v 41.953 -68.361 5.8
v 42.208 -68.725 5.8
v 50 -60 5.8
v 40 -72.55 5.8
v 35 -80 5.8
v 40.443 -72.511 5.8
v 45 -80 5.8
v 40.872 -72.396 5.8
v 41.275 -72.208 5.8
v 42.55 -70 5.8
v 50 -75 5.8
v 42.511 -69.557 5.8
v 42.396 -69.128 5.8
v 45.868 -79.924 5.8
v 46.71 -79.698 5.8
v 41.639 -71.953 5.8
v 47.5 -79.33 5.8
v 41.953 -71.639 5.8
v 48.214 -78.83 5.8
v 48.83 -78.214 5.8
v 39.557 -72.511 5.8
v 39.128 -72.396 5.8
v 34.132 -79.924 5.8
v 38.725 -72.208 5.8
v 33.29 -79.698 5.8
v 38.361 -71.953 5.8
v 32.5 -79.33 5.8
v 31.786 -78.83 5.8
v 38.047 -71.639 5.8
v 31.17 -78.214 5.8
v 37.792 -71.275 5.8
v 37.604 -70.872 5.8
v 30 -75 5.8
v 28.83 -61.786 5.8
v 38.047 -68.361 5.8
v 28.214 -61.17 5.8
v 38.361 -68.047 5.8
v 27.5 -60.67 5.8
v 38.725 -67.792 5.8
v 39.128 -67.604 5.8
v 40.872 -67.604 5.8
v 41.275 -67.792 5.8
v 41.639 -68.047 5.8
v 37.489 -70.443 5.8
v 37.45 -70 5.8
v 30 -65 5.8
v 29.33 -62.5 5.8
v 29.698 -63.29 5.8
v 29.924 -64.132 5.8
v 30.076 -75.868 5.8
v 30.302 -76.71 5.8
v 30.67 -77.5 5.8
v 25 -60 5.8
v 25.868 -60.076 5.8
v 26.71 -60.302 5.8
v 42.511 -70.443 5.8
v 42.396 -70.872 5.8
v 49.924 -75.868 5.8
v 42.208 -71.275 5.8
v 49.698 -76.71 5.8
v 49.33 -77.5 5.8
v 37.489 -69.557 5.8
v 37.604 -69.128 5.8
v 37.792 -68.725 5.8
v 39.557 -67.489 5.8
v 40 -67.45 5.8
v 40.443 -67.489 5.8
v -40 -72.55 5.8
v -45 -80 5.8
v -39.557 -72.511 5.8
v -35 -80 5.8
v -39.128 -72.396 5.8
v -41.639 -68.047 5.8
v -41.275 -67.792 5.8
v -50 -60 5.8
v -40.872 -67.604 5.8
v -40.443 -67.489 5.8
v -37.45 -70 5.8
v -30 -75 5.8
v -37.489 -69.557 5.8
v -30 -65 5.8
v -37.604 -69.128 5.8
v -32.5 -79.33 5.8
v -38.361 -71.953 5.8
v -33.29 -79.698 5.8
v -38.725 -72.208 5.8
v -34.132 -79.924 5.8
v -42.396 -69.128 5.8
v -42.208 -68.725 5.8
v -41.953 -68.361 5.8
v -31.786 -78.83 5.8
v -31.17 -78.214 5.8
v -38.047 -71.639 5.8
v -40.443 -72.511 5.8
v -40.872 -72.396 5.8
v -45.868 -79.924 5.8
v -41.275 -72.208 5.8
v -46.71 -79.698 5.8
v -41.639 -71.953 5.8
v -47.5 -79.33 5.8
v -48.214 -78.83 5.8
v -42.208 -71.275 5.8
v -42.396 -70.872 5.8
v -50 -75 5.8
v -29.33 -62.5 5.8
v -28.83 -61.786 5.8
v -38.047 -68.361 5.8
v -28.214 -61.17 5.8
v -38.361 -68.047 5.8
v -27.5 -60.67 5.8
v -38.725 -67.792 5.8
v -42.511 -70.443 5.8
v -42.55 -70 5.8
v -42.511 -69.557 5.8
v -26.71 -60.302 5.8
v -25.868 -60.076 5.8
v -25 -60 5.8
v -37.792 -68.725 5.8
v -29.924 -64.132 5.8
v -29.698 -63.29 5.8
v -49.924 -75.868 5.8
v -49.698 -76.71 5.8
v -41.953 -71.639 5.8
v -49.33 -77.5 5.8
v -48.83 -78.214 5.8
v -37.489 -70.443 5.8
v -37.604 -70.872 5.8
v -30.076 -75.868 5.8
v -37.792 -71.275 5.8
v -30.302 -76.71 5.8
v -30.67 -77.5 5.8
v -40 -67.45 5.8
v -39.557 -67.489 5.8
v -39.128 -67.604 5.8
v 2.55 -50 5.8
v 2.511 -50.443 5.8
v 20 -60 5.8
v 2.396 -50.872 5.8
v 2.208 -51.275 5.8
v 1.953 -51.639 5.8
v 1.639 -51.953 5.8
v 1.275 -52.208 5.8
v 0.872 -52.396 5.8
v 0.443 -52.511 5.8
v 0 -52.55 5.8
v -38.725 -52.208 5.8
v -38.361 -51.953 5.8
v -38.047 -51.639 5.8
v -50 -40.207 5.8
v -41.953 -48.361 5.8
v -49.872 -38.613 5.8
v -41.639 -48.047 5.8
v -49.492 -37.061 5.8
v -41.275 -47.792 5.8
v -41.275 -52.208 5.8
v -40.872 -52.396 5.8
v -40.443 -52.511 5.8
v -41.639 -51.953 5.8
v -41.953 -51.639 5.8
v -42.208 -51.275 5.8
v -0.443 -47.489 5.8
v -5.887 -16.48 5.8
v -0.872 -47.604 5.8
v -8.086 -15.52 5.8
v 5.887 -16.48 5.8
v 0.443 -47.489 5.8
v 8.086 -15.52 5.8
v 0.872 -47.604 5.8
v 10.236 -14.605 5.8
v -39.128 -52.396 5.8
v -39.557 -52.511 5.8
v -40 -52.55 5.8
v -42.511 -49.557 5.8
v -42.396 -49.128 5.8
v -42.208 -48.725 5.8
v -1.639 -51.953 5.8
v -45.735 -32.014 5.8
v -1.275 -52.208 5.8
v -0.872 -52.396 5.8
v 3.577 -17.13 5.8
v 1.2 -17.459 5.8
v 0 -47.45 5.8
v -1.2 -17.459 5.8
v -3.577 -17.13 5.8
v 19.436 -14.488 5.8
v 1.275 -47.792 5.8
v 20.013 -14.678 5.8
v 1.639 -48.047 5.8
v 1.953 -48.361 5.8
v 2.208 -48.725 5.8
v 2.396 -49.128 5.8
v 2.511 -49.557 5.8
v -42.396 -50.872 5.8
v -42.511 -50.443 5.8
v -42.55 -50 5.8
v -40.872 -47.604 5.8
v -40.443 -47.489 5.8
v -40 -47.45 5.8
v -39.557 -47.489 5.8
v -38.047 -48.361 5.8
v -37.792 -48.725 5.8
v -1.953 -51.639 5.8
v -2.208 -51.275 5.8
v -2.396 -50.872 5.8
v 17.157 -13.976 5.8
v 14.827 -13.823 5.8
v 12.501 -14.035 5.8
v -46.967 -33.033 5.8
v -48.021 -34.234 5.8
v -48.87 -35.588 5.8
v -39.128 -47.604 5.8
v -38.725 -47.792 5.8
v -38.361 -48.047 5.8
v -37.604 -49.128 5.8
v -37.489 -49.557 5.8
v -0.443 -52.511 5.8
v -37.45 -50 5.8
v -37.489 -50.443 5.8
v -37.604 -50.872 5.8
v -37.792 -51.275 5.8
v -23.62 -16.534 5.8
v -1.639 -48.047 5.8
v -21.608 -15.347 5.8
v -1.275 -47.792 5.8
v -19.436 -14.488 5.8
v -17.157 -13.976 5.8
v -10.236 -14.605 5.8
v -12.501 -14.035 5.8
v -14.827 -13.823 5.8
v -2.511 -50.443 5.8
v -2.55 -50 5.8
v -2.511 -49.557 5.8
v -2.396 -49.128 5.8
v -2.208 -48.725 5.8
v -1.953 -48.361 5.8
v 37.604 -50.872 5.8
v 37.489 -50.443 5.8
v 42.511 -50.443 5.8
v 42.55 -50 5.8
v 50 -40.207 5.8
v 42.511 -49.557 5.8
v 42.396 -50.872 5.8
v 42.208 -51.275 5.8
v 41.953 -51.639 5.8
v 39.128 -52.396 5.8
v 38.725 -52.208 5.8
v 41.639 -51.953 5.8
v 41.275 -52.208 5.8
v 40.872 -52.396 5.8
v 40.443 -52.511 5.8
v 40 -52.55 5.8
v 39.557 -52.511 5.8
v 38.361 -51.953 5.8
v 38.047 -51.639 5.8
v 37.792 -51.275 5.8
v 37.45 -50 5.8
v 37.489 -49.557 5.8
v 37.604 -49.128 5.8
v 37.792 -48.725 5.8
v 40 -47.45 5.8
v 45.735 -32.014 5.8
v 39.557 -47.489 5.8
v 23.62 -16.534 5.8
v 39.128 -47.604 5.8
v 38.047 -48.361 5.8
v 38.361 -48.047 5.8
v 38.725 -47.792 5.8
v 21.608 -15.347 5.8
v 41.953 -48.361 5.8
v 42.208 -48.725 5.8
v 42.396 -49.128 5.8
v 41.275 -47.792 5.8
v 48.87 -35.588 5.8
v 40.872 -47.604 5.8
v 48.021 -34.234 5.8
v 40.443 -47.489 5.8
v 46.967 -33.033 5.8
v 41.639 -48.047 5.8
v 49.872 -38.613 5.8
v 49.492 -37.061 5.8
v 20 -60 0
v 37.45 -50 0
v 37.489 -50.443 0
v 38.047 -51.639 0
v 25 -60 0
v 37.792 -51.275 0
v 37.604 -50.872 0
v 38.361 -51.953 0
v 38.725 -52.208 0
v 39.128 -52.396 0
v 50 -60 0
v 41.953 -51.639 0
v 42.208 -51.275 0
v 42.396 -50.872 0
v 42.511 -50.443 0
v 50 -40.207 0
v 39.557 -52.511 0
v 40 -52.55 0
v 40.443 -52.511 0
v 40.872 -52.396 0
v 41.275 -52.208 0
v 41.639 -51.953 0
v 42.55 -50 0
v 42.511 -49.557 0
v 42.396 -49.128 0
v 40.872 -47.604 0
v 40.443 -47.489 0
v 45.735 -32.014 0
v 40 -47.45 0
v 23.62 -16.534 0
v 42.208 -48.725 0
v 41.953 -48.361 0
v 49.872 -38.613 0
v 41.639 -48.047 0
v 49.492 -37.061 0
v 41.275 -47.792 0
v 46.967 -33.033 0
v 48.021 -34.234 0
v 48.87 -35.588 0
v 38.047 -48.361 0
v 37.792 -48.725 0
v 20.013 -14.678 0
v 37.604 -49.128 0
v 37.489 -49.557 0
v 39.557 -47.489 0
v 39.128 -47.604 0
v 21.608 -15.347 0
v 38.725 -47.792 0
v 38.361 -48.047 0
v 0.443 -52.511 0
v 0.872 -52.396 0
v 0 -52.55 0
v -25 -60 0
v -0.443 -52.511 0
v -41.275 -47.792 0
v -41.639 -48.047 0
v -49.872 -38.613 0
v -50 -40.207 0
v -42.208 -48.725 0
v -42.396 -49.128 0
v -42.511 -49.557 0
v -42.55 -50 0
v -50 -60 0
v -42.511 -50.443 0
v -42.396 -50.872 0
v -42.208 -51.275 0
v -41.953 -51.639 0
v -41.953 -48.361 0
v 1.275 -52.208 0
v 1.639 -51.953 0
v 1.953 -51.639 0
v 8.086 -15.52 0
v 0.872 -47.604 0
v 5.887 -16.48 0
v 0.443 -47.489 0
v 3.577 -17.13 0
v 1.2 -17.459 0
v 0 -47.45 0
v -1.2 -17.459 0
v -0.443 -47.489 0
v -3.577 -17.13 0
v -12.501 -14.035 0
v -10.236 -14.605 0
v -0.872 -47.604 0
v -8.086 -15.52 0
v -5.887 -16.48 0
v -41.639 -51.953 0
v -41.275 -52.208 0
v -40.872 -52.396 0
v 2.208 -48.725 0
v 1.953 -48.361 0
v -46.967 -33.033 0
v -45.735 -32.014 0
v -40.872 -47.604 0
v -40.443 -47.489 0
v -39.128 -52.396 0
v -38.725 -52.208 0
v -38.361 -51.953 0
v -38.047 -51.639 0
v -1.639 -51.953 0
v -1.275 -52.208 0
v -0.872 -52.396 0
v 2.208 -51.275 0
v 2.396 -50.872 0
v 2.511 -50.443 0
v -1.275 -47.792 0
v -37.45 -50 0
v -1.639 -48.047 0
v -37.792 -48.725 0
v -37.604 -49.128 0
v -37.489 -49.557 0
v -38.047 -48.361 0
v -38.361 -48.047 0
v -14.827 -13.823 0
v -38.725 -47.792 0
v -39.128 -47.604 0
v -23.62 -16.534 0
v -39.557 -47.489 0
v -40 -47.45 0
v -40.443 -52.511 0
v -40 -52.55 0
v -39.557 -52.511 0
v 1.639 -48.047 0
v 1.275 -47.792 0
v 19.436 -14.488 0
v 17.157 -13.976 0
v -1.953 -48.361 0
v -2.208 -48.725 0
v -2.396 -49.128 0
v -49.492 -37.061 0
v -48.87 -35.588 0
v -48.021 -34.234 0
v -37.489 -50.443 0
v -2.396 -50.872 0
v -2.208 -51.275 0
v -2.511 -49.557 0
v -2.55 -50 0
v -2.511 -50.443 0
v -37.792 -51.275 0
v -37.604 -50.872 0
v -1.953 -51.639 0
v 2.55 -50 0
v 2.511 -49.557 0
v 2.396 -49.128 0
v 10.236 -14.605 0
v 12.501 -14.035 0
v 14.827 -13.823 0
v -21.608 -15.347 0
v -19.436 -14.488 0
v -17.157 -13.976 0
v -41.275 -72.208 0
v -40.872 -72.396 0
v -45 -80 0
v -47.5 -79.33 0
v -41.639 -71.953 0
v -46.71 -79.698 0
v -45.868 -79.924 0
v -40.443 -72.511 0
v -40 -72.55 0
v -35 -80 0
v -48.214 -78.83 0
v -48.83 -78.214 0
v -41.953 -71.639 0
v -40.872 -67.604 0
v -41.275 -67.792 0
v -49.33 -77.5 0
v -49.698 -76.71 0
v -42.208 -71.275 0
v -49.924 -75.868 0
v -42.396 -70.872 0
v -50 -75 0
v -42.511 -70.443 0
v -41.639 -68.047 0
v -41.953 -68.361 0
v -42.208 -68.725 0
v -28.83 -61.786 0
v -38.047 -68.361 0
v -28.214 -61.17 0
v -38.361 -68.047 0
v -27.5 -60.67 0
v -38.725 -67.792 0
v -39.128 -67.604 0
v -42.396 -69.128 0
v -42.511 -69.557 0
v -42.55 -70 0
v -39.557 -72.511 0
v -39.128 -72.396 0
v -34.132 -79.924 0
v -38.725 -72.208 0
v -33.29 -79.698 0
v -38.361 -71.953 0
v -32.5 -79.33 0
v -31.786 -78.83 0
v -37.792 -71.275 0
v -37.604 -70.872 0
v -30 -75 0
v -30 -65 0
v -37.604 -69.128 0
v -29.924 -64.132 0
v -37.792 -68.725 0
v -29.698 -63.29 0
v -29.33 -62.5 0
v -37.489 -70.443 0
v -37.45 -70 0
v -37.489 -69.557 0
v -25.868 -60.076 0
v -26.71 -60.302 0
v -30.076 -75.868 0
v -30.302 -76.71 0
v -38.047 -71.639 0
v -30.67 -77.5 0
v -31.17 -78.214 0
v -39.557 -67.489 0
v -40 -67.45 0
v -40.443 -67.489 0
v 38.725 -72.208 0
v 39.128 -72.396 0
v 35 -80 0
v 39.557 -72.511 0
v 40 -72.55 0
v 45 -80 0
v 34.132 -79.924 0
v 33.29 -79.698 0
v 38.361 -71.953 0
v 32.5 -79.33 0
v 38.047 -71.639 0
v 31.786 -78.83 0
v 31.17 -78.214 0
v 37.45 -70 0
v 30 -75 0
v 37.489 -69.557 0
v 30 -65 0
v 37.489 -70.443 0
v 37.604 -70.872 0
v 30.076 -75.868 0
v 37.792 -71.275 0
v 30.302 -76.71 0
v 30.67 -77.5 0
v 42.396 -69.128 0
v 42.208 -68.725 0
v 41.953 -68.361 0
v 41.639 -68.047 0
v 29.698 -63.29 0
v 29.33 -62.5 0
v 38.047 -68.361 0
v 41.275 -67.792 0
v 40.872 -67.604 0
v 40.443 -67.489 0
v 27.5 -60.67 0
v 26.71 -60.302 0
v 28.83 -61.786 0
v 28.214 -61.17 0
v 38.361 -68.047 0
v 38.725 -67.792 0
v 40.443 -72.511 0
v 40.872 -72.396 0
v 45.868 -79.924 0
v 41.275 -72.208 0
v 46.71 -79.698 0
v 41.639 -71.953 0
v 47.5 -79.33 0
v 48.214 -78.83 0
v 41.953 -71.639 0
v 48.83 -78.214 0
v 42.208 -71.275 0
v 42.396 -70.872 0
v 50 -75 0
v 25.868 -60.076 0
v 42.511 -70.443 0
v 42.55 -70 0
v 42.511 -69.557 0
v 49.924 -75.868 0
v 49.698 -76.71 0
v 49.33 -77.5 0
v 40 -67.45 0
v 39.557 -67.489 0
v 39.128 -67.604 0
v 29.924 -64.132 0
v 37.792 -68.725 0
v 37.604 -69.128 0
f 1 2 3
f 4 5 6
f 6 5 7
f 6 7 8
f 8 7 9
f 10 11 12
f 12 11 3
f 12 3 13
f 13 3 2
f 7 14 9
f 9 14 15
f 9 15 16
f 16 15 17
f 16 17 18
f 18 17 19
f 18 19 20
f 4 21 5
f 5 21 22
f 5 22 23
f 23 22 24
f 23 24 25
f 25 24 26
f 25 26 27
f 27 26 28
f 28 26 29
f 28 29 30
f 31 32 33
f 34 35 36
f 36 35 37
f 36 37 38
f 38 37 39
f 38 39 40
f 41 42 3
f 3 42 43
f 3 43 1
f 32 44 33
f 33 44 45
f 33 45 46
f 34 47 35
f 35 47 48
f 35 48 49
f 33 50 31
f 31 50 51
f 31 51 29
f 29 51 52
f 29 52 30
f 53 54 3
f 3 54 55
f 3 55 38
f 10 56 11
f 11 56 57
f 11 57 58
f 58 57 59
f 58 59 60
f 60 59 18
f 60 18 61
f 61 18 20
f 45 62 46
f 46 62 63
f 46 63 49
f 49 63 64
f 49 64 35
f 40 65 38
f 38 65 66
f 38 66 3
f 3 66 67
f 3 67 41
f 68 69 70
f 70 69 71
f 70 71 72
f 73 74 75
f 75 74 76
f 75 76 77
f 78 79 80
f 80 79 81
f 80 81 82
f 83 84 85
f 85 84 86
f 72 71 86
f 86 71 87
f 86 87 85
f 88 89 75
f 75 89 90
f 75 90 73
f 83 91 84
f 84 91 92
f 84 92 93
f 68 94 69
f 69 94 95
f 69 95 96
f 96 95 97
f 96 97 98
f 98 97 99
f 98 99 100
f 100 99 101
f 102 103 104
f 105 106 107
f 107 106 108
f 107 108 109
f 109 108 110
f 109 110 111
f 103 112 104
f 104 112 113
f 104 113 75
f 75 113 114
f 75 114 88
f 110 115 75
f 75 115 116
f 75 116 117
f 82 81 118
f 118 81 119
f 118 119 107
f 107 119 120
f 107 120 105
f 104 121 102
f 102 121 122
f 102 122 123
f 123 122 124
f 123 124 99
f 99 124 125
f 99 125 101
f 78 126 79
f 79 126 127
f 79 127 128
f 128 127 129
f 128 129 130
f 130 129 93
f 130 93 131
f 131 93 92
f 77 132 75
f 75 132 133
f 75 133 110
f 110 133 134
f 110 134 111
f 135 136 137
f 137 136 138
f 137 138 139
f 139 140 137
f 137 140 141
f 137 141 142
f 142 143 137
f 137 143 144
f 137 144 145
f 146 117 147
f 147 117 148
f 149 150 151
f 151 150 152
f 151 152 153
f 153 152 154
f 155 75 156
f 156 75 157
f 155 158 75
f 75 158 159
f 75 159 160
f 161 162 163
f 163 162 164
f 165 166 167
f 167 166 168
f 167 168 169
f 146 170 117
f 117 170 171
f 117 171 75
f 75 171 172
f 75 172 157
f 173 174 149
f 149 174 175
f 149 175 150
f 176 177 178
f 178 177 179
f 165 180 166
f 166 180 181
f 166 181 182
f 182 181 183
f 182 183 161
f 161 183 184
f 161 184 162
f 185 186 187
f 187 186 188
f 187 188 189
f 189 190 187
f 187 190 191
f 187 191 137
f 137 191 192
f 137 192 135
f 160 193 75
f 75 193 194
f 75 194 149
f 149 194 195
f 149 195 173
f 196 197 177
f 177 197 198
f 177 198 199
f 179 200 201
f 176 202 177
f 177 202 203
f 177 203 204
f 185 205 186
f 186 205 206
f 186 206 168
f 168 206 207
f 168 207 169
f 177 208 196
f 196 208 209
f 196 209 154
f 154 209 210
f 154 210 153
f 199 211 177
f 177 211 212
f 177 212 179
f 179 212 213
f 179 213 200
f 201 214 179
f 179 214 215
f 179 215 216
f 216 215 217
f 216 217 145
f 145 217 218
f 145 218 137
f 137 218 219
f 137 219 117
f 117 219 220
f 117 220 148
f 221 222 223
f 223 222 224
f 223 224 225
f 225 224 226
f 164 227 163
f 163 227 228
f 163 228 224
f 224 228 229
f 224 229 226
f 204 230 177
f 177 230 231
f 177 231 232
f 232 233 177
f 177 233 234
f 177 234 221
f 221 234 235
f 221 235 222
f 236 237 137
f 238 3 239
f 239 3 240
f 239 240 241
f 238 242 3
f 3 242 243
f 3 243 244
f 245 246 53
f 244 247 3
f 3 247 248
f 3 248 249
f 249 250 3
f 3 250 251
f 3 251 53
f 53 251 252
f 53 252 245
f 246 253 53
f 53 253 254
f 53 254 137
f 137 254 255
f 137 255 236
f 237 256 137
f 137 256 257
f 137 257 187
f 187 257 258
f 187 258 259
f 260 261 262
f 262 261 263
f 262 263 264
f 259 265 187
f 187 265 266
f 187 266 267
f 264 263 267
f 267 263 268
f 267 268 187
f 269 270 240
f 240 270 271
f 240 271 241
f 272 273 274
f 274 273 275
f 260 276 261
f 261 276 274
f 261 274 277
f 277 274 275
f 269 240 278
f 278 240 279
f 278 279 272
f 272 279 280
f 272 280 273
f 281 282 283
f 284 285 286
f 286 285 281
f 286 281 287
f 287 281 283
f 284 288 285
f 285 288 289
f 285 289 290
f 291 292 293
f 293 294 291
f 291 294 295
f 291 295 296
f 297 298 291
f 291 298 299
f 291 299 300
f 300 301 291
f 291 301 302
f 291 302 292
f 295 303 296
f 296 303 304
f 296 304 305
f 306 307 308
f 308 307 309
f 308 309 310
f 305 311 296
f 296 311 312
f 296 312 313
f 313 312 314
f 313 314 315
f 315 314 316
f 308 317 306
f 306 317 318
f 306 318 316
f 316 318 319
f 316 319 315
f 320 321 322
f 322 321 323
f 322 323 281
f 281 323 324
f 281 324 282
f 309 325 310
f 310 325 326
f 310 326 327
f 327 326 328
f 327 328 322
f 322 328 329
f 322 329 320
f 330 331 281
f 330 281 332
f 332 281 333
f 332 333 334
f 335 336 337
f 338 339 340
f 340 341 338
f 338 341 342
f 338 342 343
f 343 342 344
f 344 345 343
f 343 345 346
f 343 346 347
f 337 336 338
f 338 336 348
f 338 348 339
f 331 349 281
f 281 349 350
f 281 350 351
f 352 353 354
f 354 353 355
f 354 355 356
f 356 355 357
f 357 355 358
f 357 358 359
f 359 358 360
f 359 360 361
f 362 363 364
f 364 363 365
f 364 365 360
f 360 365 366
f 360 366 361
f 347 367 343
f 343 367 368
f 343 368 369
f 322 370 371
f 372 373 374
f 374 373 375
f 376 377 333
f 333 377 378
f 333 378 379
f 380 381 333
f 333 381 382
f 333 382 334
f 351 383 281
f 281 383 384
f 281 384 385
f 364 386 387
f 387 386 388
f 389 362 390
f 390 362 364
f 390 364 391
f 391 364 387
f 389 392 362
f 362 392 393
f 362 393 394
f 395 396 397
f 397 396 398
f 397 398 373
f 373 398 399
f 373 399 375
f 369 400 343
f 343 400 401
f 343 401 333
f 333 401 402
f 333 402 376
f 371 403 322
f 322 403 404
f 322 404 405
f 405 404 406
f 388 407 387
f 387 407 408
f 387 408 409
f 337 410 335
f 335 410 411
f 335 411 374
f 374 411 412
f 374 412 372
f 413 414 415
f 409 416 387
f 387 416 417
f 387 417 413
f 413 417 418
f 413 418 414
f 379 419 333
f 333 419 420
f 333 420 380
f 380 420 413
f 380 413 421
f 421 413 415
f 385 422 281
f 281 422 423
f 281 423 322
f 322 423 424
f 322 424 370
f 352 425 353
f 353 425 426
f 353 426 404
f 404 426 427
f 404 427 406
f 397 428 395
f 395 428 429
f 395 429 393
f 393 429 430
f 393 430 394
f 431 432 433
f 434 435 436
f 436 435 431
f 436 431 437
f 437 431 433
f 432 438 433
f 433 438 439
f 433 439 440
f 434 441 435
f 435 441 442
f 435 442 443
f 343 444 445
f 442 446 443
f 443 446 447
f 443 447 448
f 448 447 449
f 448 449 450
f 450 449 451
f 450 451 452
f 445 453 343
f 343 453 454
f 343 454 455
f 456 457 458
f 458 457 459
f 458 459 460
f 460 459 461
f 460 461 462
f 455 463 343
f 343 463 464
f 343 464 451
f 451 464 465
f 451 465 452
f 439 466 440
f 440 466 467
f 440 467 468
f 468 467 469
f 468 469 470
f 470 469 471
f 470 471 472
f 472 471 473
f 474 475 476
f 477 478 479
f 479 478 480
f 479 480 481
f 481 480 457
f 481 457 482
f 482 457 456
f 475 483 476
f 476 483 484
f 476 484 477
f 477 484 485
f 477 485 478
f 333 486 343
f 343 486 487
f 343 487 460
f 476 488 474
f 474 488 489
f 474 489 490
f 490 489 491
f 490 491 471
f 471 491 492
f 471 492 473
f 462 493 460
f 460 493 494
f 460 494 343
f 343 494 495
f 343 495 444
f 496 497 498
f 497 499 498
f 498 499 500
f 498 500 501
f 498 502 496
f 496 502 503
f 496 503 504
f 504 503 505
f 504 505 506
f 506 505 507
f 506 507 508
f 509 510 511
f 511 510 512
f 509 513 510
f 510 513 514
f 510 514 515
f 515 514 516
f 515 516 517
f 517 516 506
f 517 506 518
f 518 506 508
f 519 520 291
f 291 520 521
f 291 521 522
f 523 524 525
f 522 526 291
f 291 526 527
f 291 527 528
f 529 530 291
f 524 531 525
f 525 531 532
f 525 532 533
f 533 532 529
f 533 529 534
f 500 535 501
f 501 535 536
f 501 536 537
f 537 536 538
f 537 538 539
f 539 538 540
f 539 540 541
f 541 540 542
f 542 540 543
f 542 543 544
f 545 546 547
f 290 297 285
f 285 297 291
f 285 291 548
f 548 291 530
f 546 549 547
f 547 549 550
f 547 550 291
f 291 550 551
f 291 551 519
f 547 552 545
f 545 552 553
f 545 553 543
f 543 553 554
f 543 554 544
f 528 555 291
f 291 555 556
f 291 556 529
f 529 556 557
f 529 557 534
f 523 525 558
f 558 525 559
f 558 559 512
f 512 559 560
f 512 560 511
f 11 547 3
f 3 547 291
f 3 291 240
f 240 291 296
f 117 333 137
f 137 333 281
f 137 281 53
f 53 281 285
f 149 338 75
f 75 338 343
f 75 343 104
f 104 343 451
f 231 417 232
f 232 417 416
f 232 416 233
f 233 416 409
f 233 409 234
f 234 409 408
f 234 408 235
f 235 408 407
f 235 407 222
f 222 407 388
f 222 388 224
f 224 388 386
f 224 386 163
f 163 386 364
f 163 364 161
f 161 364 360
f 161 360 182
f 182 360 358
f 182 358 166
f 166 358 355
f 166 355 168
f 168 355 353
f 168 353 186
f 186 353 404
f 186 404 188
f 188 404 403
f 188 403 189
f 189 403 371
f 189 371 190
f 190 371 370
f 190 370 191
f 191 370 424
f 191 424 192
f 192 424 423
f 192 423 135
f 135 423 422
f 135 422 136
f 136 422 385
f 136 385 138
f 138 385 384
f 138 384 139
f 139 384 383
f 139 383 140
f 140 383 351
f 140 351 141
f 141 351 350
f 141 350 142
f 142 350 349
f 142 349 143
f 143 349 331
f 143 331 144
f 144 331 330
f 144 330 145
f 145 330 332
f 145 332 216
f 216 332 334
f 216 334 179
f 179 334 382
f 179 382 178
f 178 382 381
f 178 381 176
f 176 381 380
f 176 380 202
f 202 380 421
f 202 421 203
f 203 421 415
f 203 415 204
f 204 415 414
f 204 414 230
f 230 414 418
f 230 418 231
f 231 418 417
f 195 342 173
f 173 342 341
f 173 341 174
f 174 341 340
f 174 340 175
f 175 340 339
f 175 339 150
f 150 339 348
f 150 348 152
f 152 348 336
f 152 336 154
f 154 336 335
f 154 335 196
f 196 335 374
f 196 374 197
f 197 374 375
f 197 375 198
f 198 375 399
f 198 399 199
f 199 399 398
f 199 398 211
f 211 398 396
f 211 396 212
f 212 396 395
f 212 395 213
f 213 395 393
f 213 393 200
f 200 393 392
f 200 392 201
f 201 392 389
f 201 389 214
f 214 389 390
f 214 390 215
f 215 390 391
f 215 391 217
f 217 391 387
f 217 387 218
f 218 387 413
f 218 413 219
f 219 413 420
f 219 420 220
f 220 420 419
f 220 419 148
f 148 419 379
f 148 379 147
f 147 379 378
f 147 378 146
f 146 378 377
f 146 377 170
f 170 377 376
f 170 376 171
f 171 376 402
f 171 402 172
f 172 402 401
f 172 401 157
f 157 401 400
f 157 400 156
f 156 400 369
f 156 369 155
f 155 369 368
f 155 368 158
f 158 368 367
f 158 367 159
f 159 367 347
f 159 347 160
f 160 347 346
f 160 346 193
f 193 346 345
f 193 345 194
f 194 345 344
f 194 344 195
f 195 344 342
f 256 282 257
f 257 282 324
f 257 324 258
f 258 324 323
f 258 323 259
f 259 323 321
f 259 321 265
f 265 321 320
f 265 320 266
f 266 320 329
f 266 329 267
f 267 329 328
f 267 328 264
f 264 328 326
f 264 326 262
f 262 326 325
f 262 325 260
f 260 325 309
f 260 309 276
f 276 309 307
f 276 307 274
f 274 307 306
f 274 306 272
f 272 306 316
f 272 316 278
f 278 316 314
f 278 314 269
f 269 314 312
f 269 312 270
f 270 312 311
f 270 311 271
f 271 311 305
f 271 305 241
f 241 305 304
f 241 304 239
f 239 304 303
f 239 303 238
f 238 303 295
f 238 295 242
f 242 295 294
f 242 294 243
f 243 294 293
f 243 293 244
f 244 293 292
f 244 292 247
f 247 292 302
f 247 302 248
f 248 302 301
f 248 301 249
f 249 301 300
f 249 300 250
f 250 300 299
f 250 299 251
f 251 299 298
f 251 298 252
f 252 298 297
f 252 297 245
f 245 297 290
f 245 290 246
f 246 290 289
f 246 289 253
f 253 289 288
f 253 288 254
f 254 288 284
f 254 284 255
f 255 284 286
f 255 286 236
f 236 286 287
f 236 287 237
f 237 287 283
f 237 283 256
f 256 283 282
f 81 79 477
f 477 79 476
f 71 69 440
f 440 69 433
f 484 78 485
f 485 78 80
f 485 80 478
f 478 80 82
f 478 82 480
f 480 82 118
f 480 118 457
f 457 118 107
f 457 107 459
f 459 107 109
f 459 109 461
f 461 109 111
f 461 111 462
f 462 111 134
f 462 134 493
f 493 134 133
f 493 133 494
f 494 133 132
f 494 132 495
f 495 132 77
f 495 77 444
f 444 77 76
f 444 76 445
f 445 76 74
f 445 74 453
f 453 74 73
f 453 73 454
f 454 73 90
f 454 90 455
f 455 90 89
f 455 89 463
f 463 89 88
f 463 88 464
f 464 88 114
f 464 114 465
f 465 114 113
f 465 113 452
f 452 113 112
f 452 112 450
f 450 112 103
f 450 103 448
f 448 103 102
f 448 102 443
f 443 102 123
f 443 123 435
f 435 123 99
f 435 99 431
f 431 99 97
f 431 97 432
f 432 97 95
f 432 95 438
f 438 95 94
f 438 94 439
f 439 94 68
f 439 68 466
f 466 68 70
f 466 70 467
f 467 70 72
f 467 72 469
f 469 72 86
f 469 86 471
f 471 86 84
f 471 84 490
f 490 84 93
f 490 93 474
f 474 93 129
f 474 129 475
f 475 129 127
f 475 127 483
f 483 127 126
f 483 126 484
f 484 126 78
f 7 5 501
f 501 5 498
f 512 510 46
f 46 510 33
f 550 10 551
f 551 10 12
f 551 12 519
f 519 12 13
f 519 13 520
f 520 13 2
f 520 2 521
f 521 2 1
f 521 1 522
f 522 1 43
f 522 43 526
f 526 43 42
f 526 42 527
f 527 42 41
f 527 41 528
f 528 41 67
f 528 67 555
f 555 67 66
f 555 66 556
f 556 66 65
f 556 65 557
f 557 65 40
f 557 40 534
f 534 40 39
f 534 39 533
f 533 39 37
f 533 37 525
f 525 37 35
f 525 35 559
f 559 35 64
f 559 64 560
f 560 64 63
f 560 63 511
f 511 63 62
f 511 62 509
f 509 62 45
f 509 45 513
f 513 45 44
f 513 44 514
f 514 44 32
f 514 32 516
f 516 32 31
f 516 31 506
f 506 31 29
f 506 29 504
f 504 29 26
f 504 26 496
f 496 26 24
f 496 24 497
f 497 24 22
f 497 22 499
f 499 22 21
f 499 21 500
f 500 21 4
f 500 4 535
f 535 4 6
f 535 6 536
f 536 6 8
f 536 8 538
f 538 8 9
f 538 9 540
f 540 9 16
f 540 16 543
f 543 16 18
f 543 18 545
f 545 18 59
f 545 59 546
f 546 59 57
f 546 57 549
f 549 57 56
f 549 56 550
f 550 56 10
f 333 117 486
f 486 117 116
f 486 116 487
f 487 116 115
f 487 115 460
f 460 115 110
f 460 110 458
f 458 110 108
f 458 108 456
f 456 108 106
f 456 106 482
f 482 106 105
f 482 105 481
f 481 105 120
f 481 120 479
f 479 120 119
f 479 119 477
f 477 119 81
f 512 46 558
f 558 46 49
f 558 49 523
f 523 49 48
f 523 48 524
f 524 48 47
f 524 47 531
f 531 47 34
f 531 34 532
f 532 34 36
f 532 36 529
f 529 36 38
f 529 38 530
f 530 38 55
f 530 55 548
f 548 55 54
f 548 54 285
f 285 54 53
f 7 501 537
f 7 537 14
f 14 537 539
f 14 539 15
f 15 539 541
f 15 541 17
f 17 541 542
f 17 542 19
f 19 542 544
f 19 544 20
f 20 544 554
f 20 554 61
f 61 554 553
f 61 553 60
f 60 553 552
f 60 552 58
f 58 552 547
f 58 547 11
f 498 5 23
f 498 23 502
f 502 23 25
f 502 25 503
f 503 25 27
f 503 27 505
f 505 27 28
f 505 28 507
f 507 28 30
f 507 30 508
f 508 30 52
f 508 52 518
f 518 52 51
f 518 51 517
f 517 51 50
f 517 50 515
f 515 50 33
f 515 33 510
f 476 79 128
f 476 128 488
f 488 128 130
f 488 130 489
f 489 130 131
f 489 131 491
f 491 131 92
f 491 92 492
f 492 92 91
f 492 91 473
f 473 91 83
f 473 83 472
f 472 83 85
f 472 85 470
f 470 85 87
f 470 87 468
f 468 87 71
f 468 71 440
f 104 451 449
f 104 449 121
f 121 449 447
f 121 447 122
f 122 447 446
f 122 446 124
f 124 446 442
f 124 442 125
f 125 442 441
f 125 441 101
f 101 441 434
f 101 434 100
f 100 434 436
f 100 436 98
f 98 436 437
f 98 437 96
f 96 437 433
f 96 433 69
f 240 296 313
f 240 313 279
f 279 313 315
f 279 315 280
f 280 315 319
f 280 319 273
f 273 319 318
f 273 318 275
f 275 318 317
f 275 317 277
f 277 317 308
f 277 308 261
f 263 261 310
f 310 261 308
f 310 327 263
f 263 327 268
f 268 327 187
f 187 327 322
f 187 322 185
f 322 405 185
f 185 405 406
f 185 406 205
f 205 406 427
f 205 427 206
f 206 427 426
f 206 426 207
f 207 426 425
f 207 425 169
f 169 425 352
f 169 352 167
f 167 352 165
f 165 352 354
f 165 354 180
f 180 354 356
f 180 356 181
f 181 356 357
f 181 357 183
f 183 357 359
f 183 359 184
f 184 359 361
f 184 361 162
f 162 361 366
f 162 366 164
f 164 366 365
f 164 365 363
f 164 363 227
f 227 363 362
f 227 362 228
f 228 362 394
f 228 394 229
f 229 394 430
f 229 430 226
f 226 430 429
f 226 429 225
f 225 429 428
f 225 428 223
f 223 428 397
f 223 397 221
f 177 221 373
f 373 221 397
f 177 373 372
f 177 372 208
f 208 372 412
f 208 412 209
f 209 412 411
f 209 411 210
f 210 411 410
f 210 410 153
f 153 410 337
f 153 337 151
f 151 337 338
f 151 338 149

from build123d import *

# Parameters (mm, degrees)
SKETCH_1_R          = 7.5
SKETCH_1_R_2        = 2.55
EXTRUDE_1_DEPTH     = 5.8
SKETCH_2_W          = 20
SKETCH_2_H          = 20
SKETCH_2_R          = 2.55
EXTRUDE_2_DEPTH     = 5.8
FILLET_1_R          = 5
SKETCH_3_OUTSIDE_W  = 130.308
SKETCH_3_OUTSIDE_H  = 130.308
CUT_EXTRUDE_1_DEPTH = 95.517934806


with BuildPart() as part:
    # ｽｹｯﾁ1 → ﾎﾞｽ - 押し出し1 (new body)
    with BuildSketch(Plane.XY):
        with BuildLine():
            Line((-50, -60), (50, -60))
            Line((50, -60), (50, -30))
            ThreePointArc((50, -30), (0, 20), (-50, -30))
            Line((-50, -30), (-50, -60))
        make_face()
        Circle(SKETCH_1_R, mode=Mode.SUBTRACT)
        with Locations((-40, -50)):
            Circle(SKETCH_1_R_2, mode=Mode.SUBTRACT)
        with Locations((0, -50)):
            Circle(SKETCH_1_R_2, mode=Mode.SUBTRACT)
        with Locations((40, -50)):
            Circle(SKETCH_1_R_2, mode=Mode.SUBTRACT)
    extrude(amount=EXTRUDE_1_DEPTH)

    # ｽｹｯﾁ2 → ﾎﾞｽ - 押し出し2 (add)
    # profile 1 of 2: a face of its own
    with BuildSketch(Plane.XY.offset(5.8)):
        with Locations((-40, -70)):
            Rectangle(SKETCH_2_W, SKETCH_2_H)
        with Locations((-40, -70)):
            Circle(SKETCH_2_R, mode=Mode.SUBTRACT)
    # profile 2 of 2: a face of its own
    with BuildSketch(Plane.XY.offset(5.8)):
        with Locations((40, -70)):
            Rectangle(SKETCH_2_W, SKETCH_2_H)
        with Locations(Location((40, -70, 0), (0, 0, 180))):
            Circle(SKETCH_2_R, mode=Mode.SUBTRACT)
    extrude(amount=-EXTRUDE_2_DEPTH)

    # ﾌｨﾚｯﾄ1
    fillet_1_edges = [part.edges().sort_by_distance(p)[0] for p in [
        (-50, -80, 2.9),
        (-30, -60, 2.9),
        (-30, -80, 2.9),
        (30, -60, 2.9),
        (50, -80, 2.9),
        (30, -80, 2.9),
    ]]
    fillet(fillet_1_edges, radius=FILLET_1_R)

    # ｽｹｯﾁ3 outside → ｶｯﾄ - 押し出し1 (cut, through all)
    with BuildSketch(Plane(origin=(0, 0, 0), x_dir=(-1, 0, 0), z_dir=(0, 0, -1))):
        with Locations((0, -30)):
            Rectangle(SKETCH_3_OUTSIDE_W, SKETCH_3_OUTSIDE_H)
        with BuildLine():
            Line((-45.734623444, -32.014236411), (-23.619608507, -16.533725955))
            ThreePointArc((-23.619608507, -16.533725955), (-15.994862618, -13.854068569), (-8.086439492, -15.519648718))
            ThreePointArc((-8.086439492, -15.519648718), (0, -17.5), (8.086439492, -15.519648718))
            ThreePointArc((8.086439492, -15.519648718), (15.994862618, -13.854068569), (23.619608507, -16.533725955))
            Line((23.619608507, -16.533725955), (45.734623444, -32.014236411))
            ThreePointArc((45.734623444, -32.014236411), (48.869786763, -35.588451808), (50, -40.206555616))
            Line((50, -40.206555616), (50, -75))
            ThreePointArc((50, -75), (48.535533906, -78.535533906), (45, -80))
            Line((45, -80), (35, -80))
            ThreePointArc((35, -80), (31.464466094, -78.535533906), (30, -75))
            Line((30, -75), (30, -65))
            ThreePointArc((30, -65), (28.535533906, -61.464466094), (25, -60))
            Line((25, -60), (-25, -60))
            ThreePointArc((-25, -60), (-28.535533906, -61.464466094), (-30, -65))
            Line((-30, -65), (-30, -75))
            ThreePointArc((-30, -75), (-31.464466094, -78.535533906), (-35, -80))
            Line((-35, -80), (-45, -80))
            ThreePointArc((-45, -80), (-48.535533906, -78.535533906), (-50, -75))
            Line((-50, -75), (-50, -40.206555616))
            ThreePointArc((-50, -40.206555616), (-48.869786763, -35.588451808), (-45.734623444, -32.014236411))
        make_face(mode=Mode.SUBTRACT)
    extrude(amount=-CUT_EXTRUDE_1_DEPTH, mode=Mode.SUBTRACT)


solid = part.part
